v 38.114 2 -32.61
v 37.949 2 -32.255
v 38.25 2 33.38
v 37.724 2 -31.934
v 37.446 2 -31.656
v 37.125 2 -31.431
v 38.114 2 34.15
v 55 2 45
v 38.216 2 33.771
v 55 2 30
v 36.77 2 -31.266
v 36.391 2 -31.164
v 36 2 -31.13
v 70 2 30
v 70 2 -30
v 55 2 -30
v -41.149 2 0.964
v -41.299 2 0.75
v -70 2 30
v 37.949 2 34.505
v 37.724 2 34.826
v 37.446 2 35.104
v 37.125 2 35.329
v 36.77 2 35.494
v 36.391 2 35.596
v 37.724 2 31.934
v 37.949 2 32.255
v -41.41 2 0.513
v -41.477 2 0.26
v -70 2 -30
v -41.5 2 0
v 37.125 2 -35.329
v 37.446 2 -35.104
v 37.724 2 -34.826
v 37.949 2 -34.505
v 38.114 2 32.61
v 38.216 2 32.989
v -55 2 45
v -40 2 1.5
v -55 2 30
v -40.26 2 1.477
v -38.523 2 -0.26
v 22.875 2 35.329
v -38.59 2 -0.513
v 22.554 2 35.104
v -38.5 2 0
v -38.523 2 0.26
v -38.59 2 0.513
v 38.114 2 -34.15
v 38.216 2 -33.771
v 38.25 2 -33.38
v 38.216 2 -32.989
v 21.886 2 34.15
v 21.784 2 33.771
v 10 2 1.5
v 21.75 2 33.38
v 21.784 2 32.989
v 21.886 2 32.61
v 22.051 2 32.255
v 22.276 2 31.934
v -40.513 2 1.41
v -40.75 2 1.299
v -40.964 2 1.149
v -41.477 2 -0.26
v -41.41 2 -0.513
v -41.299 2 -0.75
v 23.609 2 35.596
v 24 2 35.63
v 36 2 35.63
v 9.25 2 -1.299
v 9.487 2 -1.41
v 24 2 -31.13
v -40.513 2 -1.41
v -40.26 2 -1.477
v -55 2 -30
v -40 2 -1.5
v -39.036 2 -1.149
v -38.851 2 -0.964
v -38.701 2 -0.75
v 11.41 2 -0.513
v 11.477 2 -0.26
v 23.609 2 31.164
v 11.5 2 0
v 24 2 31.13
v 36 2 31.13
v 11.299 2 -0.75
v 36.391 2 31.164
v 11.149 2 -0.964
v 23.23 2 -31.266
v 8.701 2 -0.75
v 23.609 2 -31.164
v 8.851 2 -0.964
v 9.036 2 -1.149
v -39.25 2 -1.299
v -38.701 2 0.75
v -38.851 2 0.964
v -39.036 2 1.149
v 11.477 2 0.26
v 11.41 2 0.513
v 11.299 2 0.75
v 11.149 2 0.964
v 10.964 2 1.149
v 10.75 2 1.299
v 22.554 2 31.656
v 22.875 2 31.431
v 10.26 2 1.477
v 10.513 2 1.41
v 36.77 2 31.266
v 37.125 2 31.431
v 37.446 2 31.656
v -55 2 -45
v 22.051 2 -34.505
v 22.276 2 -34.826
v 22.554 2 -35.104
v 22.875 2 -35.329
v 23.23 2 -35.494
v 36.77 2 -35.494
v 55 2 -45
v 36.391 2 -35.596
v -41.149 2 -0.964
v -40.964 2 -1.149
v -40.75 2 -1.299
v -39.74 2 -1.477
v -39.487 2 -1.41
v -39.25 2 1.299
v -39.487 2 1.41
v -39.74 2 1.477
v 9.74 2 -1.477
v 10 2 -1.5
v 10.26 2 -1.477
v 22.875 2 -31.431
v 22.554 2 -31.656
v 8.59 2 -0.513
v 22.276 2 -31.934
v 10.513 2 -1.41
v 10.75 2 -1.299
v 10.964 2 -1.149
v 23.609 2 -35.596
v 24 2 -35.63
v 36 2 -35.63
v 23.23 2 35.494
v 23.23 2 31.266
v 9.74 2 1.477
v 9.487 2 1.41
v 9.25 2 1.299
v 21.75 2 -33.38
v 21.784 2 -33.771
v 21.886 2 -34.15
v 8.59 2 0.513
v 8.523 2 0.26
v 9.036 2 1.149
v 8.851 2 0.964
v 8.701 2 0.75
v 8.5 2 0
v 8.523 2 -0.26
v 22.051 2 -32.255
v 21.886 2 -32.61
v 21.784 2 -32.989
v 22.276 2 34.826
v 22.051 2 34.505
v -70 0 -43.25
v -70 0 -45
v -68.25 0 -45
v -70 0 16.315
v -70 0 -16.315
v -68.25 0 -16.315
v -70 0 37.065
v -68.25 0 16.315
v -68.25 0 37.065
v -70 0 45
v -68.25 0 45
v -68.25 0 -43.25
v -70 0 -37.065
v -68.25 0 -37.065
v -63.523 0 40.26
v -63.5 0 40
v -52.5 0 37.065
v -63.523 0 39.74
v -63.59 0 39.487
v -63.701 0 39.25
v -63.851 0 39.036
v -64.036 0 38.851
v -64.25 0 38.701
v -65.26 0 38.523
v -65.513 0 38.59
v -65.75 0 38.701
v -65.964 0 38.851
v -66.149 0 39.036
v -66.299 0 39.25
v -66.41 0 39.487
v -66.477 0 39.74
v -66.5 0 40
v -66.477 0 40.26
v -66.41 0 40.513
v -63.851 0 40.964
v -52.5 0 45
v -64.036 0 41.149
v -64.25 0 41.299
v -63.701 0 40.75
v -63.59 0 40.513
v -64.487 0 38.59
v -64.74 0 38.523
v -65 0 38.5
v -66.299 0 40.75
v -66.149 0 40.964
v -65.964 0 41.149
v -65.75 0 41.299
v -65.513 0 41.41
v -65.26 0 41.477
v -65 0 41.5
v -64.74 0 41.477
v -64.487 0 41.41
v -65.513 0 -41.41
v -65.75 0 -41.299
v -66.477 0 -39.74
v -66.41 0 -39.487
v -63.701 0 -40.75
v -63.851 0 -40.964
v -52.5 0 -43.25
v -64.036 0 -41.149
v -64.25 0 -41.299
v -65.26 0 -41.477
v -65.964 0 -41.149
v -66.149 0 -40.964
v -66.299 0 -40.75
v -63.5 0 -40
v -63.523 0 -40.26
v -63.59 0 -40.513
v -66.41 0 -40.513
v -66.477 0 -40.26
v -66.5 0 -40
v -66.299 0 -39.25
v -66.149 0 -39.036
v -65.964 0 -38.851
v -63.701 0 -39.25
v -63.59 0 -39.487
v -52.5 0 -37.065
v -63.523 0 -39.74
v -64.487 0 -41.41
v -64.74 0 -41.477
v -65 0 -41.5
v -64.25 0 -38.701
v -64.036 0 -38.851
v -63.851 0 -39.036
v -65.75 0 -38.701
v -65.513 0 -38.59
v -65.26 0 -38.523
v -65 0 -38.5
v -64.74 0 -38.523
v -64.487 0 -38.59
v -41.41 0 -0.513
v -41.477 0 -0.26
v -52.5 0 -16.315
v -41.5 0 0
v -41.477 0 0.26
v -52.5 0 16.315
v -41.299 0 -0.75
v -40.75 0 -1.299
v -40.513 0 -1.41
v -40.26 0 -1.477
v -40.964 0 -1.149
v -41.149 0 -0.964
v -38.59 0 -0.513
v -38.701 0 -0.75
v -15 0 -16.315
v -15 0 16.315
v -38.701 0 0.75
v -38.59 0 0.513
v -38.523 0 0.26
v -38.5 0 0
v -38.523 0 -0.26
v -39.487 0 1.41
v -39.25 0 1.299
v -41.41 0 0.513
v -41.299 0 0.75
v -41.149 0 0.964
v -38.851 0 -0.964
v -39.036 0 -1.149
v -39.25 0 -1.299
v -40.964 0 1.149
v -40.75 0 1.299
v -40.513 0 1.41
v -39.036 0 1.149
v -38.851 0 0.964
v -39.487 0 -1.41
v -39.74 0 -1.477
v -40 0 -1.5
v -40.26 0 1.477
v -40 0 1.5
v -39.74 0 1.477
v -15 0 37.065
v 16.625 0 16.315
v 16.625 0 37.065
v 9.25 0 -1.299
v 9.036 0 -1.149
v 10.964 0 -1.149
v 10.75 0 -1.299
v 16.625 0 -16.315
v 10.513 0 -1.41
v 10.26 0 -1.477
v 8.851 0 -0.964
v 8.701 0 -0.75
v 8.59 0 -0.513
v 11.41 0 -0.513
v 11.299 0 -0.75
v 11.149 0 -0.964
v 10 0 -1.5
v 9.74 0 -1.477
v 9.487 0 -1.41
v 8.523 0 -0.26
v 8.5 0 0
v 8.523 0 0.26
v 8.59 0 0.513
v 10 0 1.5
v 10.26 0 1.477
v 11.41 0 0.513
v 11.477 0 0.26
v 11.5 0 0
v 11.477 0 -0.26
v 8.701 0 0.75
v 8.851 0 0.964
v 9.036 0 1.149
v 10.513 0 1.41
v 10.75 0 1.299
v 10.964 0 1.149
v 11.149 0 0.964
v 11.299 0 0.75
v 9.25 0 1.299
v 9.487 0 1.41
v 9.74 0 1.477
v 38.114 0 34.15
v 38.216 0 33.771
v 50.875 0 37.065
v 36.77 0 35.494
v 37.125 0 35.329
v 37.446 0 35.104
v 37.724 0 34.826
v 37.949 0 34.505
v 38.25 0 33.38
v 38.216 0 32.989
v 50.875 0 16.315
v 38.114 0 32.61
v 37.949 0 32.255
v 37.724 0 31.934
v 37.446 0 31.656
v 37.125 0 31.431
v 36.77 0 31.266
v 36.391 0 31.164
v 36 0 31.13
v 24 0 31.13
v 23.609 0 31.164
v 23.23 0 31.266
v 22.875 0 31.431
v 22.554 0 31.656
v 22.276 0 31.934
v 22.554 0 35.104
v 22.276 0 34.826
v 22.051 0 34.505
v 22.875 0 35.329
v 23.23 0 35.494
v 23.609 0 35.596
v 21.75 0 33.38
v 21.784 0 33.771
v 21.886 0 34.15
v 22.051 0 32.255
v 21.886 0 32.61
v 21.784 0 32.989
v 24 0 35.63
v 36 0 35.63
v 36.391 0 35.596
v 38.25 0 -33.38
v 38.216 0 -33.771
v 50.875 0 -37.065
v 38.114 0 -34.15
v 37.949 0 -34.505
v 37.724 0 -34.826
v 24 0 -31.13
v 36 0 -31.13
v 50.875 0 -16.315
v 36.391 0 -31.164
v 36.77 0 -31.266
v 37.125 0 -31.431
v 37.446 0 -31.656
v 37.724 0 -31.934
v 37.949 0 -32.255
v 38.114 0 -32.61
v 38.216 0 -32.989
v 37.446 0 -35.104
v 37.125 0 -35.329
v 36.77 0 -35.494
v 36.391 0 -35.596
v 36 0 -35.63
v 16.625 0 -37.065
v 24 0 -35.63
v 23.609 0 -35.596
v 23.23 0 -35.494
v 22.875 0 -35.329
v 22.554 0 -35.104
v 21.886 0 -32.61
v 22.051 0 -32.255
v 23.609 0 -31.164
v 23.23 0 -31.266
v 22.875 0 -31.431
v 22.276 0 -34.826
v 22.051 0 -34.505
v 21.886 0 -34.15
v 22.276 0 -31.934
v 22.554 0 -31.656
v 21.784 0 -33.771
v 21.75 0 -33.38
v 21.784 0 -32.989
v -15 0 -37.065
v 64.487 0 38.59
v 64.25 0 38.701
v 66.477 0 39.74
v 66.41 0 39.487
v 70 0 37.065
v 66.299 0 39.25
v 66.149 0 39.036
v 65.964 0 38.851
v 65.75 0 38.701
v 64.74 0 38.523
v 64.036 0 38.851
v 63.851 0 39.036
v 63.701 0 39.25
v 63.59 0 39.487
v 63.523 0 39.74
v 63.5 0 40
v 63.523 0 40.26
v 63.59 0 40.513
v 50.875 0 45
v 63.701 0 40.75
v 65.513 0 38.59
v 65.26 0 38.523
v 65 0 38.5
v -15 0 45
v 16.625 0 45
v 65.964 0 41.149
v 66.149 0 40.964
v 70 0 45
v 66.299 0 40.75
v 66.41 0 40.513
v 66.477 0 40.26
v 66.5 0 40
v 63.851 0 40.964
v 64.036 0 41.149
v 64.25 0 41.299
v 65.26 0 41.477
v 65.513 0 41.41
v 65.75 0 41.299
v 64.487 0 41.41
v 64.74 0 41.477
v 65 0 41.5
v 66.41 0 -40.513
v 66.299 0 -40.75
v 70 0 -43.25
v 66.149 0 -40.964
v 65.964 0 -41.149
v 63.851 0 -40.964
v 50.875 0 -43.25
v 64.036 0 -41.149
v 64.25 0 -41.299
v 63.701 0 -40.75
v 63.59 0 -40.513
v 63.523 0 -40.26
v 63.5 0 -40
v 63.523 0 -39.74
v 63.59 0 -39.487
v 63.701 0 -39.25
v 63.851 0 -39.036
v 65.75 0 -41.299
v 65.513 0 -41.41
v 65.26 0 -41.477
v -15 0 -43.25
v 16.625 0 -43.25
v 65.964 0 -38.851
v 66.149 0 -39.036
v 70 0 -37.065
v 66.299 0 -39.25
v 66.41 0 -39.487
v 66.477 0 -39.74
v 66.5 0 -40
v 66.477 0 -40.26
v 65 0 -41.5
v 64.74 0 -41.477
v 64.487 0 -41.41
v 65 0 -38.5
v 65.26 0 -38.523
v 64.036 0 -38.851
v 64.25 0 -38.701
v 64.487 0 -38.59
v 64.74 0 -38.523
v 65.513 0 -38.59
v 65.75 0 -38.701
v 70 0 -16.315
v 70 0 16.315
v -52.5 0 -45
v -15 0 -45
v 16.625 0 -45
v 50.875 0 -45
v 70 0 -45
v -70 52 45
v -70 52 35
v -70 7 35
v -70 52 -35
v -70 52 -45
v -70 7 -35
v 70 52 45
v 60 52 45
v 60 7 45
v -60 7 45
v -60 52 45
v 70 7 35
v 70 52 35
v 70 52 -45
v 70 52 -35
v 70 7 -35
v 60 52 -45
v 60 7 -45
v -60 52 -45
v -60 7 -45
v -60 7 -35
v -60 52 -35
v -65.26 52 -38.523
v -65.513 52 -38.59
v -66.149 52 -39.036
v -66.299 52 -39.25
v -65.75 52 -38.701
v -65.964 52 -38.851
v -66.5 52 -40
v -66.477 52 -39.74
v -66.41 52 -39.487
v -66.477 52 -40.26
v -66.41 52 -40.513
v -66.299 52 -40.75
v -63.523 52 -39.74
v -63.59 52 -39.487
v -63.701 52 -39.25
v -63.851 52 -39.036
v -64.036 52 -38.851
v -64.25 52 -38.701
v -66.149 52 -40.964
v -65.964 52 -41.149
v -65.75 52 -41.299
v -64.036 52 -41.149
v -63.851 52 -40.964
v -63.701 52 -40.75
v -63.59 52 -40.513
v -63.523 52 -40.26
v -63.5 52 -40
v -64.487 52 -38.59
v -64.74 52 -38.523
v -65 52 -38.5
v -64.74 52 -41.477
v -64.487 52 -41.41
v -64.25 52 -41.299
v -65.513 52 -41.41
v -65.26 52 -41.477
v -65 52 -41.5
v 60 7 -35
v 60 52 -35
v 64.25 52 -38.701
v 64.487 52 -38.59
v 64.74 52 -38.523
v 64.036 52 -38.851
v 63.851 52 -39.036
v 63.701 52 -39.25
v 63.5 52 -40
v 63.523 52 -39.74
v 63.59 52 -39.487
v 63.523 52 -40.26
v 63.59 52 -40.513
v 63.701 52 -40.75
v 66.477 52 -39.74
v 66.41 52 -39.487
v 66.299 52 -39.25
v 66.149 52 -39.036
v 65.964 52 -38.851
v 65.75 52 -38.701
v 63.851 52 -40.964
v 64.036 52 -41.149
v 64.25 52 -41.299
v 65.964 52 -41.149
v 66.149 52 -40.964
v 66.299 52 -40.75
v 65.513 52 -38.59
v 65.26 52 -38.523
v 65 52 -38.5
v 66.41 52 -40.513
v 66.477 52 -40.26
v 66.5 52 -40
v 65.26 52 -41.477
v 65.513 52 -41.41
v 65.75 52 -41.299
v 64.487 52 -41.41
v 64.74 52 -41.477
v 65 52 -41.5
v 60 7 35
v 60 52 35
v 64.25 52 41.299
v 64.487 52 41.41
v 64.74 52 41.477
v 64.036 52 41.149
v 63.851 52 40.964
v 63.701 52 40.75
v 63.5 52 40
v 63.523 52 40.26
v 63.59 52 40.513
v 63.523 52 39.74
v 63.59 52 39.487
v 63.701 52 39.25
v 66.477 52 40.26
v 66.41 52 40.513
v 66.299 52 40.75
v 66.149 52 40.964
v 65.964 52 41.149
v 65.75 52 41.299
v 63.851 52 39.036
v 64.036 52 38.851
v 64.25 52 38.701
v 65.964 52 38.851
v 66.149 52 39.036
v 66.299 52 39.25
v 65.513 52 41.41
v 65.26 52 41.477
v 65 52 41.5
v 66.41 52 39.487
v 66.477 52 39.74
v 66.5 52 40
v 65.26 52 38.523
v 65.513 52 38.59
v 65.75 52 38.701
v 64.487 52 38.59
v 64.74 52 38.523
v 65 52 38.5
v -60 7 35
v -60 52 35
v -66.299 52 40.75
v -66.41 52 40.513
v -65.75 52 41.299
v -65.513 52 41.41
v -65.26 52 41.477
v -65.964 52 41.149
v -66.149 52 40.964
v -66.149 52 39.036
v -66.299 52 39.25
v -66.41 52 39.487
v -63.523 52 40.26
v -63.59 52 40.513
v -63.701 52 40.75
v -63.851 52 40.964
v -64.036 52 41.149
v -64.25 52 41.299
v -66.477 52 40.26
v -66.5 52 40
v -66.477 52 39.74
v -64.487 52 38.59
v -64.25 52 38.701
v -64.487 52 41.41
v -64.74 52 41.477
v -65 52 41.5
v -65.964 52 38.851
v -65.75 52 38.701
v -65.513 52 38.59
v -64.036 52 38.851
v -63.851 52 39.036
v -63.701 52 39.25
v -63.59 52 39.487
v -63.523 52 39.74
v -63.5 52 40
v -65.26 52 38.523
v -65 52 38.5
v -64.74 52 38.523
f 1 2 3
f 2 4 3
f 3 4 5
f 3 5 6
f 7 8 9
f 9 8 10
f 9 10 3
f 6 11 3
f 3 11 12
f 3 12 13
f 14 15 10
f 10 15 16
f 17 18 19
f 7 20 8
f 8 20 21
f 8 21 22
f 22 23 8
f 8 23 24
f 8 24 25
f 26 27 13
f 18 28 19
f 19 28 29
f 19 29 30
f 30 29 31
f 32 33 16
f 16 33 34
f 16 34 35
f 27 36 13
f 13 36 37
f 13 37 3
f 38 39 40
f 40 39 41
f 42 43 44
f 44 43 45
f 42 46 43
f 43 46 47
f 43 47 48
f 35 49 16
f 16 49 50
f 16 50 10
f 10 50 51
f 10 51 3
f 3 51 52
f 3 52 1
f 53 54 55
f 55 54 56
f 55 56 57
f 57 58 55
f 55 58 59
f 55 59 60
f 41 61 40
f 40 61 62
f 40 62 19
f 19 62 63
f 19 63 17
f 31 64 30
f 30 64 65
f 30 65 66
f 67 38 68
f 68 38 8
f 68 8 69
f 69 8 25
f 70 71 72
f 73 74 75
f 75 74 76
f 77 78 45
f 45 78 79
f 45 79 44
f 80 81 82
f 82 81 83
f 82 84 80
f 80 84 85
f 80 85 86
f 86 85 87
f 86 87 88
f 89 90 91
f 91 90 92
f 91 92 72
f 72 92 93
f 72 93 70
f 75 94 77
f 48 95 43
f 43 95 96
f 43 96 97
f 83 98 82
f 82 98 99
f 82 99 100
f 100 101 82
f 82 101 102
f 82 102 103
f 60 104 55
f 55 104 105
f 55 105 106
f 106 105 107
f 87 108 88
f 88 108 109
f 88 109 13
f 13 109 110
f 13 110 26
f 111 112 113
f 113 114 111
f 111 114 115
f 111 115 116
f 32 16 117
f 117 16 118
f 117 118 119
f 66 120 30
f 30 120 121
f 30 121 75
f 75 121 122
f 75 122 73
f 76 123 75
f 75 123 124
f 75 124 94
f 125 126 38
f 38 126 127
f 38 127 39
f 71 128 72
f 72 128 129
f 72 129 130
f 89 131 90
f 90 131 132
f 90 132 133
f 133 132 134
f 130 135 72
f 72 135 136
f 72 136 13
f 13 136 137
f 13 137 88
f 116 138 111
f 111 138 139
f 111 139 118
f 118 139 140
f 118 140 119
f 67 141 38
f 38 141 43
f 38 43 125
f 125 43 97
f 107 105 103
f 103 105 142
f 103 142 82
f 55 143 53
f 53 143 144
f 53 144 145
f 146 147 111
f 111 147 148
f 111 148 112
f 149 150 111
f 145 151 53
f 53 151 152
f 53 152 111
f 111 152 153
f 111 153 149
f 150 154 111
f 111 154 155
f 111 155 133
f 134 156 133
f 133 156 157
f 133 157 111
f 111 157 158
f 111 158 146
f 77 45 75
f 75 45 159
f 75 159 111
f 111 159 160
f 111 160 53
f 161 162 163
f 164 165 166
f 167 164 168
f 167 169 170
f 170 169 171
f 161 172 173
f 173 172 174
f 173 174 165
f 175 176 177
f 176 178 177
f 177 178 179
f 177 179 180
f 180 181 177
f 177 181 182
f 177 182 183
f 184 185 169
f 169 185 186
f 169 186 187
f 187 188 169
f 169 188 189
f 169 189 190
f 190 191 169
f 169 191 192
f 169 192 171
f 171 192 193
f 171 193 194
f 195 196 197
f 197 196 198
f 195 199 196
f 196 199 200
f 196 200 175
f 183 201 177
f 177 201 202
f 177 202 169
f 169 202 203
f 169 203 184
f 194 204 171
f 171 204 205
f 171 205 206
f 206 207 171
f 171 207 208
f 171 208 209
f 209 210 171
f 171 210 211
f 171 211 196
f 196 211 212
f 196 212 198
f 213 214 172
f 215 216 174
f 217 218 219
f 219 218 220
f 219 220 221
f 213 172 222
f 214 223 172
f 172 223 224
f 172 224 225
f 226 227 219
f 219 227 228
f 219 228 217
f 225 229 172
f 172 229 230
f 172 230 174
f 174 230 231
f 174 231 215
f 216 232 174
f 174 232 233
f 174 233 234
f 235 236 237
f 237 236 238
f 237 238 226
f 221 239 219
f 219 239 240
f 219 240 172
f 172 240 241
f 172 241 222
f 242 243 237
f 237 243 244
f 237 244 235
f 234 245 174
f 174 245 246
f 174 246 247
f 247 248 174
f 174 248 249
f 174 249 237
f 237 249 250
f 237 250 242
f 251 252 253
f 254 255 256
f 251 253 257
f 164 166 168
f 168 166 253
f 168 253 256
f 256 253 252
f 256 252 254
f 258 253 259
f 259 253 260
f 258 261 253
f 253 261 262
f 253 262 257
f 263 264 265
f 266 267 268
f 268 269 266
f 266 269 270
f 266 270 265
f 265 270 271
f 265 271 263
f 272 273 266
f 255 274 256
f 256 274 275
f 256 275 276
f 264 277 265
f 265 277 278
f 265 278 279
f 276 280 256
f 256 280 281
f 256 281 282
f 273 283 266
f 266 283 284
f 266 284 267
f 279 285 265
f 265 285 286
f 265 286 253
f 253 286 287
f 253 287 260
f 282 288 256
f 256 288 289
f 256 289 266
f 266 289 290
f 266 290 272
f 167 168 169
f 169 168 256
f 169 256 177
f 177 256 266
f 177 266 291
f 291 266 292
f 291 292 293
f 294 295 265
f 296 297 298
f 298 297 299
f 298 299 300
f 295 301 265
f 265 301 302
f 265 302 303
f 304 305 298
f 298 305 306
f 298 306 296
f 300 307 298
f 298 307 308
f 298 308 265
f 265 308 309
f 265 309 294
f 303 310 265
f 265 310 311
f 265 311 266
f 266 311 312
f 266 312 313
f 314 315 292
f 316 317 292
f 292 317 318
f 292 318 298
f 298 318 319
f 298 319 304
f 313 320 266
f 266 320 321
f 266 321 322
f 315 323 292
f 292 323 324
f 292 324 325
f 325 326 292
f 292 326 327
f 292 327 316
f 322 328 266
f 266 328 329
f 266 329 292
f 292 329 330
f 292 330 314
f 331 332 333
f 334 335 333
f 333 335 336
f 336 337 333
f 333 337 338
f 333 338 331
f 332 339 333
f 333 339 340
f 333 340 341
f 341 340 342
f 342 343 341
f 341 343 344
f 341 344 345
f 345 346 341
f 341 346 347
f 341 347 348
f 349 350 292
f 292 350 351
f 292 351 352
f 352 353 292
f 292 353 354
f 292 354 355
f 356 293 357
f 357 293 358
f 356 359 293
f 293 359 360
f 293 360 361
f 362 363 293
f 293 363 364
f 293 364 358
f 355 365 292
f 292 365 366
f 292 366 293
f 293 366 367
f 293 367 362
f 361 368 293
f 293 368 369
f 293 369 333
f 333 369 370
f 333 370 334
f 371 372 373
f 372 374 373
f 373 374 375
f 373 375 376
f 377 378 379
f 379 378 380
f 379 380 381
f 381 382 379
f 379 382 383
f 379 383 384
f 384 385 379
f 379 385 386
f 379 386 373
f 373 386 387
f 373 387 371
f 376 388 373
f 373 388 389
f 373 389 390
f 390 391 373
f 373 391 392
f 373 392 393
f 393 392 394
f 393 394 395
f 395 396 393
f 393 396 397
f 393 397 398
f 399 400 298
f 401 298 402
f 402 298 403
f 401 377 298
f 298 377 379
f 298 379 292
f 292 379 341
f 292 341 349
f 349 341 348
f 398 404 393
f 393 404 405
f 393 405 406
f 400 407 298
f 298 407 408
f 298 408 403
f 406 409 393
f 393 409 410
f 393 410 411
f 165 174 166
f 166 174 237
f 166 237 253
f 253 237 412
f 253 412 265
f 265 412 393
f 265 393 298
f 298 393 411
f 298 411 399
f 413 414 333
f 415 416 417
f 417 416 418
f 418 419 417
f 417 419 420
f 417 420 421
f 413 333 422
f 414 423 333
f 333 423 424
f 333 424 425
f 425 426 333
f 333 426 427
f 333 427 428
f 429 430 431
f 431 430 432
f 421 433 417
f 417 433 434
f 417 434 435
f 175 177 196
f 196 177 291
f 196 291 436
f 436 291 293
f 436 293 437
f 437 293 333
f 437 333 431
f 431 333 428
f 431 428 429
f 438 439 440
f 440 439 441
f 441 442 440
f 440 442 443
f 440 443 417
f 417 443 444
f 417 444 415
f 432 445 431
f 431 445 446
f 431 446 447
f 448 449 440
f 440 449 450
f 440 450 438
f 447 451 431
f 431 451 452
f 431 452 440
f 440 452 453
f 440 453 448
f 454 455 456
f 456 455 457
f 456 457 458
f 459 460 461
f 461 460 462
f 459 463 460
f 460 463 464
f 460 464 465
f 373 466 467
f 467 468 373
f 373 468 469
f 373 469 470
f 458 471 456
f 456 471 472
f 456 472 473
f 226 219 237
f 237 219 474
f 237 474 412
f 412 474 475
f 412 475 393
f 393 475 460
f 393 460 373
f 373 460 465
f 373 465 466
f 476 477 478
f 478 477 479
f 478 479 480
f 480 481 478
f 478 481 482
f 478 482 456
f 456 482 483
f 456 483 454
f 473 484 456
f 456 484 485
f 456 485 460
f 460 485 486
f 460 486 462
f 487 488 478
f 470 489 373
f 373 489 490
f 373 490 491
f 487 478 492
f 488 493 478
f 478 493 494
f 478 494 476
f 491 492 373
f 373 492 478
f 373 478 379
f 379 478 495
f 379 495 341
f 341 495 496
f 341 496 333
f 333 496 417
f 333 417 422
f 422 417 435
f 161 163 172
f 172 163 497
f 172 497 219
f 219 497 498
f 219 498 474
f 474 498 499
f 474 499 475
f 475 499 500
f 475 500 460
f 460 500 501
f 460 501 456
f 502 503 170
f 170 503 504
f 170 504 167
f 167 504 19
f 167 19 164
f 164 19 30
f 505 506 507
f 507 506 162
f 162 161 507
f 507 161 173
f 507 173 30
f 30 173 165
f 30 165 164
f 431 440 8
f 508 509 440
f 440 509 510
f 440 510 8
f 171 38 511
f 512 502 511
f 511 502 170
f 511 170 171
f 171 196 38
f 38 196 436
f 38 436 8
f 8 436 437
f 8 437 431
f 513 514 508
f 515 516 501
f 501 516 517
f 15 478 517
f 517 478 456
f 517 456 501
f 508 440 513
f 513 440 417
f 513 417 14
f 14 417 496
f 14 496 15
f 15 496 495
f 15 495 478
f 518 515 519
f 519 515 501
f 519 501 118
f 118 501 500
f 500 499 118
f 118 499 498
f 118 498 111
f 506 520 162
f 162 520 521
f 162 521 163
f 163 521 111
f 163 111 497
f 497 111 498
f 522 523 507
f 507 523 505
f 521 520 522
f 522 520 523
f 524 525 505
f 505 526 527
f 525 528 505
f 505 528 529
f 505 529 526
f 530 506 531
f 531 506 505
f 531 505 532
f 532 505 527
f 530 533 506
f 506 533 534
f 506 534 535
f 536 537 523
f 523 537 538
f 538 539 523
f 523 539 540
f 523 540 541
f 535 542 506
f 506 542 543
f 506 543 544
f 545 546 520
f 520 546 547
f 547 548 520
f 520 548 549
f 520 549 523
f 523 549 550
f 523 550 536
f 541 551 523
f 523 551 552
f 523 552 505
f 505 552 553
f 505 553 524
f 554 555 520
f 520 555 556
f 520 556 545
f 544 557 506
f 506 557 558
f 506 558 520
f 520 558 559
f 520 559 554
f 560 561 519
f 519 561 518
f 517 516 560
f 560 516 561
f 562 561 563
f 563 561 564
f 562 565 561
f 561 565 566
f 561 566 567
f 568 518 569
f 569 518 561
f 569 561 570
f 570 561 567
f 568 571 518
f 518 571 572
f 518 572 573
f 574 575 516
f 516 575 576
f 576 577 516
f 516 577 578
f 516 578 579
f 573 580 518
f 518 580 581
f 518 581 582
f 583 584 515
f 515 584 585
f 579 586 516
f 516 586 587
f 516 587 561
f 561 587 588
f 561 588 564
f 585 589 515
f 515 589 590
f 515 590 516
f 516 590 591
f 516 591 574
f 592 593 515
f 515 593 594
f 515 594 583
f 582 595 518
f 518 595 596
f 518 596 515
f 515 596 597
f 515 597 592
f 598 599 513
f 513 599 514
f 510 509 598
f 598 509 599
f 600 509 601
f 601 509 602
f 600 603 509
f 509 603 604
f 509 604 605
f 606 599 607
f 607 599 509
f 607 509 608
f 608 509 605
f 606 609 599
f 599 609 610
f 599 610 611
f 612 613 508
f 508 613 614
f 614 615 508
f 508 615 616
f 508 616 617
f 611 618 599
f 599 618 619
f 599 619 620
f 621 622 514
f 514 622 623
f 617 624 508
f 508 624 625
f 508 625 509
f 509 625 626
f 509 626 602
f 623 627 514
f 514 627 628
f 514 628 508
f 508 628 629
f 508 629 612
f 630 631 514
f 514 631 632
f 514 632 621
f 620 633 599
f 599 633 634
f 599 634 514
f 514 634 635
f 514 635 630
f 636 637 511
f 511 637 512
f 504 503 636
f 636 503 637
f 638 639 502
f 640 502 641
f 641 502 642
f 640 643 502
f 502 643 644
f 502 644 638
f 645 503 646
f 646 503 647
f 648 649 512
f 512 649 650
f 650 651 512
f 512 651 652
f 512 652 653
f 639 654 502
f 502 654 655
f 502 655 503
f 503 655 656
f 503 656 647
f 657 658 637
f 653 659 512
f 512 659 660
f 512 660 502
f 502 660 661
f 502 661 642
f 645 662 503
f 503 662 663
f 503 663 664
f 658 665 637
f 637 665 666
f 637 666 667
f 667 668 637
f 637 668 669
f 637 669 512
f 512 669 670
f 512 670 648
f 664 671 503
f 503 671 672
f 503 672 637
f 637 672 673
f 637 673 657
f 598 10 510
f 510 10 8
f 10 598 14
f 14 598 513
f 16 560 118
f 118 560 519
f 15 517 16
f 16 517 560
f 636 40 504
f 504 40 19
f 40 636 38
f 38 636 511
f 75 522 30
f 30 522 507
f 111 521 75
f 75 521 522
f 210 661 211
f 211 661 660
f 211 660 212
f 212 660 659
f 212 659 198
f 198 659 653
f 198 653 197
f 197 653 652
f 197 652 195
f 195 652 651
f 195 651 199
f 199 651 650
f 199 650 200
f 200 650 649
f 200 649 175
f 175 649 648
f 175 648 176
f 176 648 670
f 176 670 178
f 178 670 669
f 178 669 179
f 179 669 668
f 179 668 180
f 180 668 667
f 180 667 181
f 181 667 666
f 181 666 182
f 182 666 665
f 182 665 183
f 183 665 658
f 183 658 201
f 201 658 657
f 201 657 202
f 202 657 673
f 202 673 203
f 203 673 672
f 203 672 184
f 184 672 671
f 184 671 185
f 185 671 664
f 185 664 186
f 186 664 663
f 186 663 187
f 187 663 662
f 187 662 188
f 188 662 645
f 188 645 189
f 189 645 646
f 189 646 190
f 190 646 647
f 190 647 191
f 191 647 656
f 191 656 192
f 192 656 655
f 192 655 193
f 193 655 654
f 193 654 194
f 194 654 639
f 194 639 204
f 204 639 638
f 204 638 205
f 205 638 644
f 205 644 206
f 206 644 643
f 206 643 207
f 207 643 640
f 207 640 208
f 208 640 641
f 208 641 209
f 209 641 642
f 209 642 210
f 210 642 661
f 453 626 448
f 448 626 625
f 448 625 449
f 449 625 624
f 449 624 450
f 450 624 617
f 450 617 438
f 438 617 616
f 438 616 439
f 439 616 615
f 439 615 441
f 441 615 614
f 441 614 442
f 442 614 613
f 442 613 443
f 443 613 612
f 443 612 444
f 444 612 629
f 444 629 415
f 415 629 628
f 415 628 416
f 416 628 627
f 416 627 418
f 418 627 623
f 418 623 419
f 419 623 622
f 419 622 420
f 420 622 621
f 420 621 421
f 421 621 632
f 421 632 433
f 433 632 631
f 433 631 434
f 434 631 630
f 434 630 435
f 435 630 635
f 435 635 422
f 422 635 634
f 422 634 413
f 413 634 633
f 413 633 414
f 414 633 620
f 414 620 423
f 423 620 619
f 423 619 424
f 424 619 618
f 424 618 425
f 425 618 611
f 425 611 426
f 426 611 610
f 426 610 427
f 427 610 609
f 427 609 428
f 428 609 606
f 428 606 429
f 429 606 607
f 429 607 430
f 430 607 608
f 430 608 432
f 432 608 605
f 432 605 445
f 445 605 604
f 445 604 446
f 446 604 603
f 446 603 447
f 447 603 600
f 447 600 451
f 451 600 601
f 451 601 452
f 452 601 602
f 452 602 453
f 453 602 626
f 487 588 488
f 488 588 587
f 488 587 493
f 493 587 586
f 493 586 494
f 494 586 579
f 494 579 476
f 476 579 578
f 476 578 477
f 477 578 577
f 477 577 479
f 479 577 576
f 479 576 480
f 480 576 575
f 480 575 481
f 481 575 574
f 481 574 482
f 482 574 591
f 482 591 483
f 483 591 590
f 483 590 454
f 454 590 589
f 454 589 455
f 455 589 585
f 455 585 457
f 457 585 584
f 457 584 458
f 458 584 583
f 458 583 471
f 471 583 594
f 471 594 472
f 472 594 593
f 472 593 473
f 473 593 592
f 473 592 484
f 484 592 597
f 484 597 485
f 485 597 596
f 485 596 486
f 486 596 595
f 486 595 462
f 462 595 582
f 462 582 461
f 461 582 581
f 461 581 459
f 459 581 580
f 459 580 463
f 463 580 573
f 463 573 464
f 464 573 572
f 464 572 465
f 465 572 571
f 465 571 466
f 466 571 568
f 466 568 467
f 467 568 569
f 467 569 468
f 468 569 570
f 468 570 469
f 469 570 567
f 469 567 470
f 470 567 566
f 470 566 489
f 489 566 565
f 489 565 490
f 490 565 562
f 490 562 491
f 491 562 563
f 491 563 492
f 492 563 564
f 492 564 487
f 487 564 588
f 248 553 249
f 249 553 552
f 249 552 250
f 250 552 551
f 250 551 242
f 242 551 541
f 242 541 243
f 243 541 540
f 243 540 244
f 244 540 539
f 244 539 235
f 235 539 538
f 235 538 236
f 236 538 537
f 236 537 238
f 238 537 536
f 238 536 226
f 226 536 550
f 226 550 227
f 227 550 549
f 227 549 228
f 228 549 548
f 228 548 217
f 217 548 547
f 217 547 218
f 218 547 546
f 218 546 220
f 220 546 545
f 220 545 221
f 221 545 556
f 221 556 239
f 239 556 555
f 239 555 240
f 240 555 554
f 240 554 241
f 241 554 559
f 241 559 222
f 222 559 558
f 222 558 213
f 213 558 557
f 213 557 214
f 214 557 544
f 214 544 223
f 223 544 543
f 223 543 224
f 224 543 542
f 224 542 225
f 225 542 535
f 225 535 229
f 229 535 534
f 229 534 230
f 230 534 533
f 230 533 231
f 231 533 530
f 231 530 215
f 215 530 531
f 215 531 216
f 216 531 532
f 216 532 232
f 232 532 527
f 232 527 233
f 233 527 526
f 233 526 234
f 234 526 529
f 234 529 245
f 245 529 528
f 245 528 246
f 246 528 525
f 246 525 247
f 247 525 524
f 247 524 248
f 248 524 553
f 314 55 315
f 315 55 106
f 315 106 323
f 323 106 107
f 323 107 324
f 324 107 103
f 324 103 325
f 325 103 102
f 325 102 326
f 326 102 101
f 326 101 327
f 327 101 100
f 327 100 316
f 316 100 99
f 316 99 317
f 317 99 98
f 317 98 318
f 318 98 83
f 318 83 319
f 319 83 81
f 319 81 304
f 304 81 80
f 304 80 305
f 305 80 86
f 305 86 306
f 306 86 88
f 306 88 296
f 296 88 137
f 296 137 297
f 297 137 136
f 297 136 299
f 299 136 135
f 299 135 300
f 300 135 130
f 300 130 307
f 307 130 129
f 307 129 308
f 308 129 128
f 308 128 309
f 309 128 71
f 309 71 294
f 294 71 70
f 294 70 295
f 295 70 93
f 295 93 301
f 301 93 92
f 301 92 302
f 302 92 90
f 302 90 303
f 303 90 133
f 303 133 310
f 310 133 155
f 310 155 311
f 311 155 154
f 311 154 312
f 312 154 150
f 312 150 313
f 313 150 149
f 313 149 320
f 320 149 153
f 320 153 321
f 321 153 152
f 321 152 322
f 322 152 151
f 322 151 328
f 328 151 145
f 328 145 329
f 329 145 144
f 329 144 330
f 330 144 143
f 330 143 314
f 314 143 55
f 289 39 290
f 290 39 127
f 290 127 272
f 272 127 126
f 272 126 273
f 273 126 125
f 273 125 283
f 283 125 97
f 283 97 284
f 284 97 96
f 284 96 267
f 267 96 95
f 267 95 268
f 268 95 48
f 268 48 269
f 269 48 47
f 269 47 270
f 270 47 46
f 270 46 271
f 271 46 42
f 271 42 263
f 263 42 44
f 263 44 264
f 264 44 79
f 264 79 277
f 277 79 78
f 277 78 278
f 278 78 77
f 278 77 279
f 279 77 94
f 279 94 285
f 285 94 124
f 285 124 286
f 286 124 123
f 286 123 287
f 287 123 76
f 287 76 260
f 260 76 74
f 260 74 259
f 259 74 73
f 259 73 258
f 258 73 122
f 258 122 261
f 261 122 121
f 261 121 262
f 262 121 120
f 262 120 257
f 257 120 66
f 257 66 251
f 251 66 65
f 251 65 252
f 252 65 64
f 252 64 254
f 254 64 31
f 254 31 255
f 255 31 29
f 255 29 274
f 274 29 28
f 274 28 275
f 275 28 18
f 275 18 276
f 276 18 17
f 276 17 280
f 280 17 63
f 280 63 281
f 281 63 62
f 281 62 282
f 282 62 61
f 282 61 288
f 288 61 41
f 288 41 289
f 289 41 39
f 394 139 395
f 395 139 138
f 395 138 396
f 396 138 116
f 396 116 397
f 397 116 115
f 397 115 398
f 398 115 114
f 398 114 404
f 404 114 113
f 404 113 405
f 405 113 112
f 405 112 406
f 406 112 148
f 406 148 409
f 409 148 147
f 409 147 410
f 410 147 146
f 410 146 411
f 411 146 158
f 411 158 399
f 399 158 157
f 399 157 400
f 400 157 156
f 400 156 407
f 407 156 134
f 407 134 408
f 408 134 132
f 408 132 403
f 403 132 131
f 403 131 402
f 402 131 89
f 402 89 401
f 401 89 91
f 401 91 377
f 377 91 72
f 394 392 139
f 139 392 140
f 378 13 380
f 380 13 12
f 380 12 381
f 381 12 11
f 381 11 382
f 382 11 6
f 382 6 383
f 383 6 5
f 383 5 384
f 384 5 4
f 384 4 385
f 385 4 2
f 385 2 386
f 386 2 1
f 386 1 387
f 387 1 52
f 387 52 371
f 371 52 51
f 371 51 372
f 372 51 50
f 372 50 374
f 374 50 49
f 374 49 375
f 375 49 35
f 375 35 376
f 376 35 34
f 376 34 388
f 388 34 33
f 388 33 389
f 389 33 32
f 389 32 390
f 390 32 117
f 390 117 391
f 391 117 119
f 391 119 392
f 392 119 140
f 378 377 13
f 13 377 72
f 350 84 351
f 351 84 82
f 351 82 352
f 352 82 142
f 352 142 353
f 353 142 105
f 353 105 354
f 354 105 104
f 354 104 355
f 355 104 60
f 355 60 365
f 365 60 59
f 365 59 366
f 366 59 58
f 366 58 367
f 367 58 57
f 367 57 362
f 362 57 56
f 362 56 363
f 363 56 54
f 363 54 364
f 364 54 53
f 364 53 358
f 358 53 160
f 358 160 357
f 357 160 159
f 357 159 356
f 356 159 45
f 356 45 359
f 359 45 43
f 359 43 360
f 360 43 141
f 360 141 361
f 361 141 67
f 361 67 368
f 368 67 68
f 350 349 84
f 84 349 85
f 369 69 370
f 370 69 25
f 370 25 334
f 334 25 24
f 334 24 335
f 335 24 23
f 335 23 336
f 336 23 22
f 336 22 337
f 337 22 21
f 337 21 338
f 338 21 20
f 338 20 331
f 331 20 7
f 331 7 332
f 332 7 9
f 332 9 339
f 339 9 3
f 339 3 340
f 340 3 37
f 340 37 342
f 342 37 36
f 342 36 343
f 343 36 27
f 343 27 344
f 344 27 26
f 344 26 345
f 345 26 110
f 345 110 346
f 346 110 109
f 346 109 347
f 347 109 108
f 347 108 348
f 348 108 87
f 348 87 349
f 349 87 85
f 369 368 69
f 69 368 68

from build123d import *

# Parameters (mm, degrees)
SKETCH1_W           = 140
SKETCH1_H           = 90
BOSS_EXTRUDE1_DEPTH = 2
SKETCH2_W           = 10
SKETCH2_H           = 10
BOSS_EXTRUDE2_DEPTH = 50
CHAMFER1_SIZE       = 5
SKETCH3_R           = 1.5
CUT_EXTRUDE1_DEPTH  = 53
SKETCH4_R           = 1.5
CUT_EXTRUDE2_DEPTH  = 3
CUT_EXTRUDE3_DEPTH  = 3


with BuildPart() as part:
    # Sketch1 → Boss-Extrude1 (new body)
    with BuildSketch(Plane(origin=(0, 0, 0), x_dir=(1, 0, 0), z_dir=(0, 1, 0))):
        Rectangle(SKETCH1_W, SKETCH1_H)
    extrude(amount=BOSS_EXTRUDE1_DEPTH)

    # Sketch2 → Boss-Extrude2 (add)
    with BuildSketch(Plane(origin=(0, 2, 0), x_dir=(1, 0, 0), z_dir=(0, 1, 0))):
        with Locations((-65, 40)):
            Rectangle(SKETCH2_W, SKETCH2_H)
        with Locations((65, 40)):
            Rectangle(SKETCH2_W, SKETCH2_H)
        with Locations((65, -40)):
            Rectangle(SKETCH2_W, SKETCH2_H)
        with Locations((-65, -40)):
            Rectangle(SKETCH2_W, SKETCH2_H)
    extrude(amount=BOSS_EXTRUDE2_DEPTH)

    # Chamfer1
    chamfer1_edges = [part.edges().sort_by_distance(p)[0] for p in [
        (-65, 2, -35),
        (-60, 2, -40),
        (60, 2, -40),
        (65, 2, -35),
        (65, 2, 35),
        (60, 2, 40),
        (-60, 2, 40),
        (-65, 2, 35),
    ]]
    chamfer(chamfer1_edges, length=CHAMFER1_SIZE)

    # Sketch3 → Cut-Extrude1 (cut, through all)
    with BuildSketch(Plane(origin=(0, 52, 0), x_dir=(1, 0, 0), z_dir=(0, 1, 0))):
        with Locations((-65, 40)):
            Circle(SKETCH3_R)
        with Locations((65, 40)):
            Circle(SKETCH3_R)
        with Locations((65, -40)):
            Circle(SKETCH3_R)
        with Locations((-65, -40)):
            Circle(SKETCH3_R)
    extrude(amount=-CUT_EXTRUDE1_DEPTH, mode=Mode.SUBTRACT)

    # Sketch4 → Cut-Extrude2 (cut, through all)
    with BuildSketch(Plane(origin=(0, 2, 0), x_dir=(1, 0, 0), z_dir=(0, 1, 0))):
        with Locations((-40, 0)):
            Circle(SKETCH4_R)
        with Locations((10, 0)):
            Circle(SKETCH4_R)
    extrude(amount=-CUT_EXTRUDE2_DEPTH, mode=Mode.SUBTRACT)

    # Sketch5 → Cut-Extrude3 (cut, through all)
    with BuildSketch(Plane(origin=(0, 2, 0), x_dir=(1, 0, 0), z_dir=(0, 1, 0))):
        with BuildLine():
            Line((24, 35.63), (36, 35.63))
            ThreePointArc((36, 35.63), (38.25, 33.38), (36, 31.13))
            Line((36, 31.13), (24, 31.13))
            ThreePointArc((24, 31.13), (21.75, 33.38), (24, 35.63))
        make_face()
    cut_extrude3 = extrude(amount=-CUT_EXTRUDE3_DEPTH, mode=Mode.SUBTRACT)

    # Mirror1: Cut-Extrude3 across plane
    add(cut_extrude3.mirror(Plane.XY), mode=Mode.SUBTRACT)


solid = part.part
